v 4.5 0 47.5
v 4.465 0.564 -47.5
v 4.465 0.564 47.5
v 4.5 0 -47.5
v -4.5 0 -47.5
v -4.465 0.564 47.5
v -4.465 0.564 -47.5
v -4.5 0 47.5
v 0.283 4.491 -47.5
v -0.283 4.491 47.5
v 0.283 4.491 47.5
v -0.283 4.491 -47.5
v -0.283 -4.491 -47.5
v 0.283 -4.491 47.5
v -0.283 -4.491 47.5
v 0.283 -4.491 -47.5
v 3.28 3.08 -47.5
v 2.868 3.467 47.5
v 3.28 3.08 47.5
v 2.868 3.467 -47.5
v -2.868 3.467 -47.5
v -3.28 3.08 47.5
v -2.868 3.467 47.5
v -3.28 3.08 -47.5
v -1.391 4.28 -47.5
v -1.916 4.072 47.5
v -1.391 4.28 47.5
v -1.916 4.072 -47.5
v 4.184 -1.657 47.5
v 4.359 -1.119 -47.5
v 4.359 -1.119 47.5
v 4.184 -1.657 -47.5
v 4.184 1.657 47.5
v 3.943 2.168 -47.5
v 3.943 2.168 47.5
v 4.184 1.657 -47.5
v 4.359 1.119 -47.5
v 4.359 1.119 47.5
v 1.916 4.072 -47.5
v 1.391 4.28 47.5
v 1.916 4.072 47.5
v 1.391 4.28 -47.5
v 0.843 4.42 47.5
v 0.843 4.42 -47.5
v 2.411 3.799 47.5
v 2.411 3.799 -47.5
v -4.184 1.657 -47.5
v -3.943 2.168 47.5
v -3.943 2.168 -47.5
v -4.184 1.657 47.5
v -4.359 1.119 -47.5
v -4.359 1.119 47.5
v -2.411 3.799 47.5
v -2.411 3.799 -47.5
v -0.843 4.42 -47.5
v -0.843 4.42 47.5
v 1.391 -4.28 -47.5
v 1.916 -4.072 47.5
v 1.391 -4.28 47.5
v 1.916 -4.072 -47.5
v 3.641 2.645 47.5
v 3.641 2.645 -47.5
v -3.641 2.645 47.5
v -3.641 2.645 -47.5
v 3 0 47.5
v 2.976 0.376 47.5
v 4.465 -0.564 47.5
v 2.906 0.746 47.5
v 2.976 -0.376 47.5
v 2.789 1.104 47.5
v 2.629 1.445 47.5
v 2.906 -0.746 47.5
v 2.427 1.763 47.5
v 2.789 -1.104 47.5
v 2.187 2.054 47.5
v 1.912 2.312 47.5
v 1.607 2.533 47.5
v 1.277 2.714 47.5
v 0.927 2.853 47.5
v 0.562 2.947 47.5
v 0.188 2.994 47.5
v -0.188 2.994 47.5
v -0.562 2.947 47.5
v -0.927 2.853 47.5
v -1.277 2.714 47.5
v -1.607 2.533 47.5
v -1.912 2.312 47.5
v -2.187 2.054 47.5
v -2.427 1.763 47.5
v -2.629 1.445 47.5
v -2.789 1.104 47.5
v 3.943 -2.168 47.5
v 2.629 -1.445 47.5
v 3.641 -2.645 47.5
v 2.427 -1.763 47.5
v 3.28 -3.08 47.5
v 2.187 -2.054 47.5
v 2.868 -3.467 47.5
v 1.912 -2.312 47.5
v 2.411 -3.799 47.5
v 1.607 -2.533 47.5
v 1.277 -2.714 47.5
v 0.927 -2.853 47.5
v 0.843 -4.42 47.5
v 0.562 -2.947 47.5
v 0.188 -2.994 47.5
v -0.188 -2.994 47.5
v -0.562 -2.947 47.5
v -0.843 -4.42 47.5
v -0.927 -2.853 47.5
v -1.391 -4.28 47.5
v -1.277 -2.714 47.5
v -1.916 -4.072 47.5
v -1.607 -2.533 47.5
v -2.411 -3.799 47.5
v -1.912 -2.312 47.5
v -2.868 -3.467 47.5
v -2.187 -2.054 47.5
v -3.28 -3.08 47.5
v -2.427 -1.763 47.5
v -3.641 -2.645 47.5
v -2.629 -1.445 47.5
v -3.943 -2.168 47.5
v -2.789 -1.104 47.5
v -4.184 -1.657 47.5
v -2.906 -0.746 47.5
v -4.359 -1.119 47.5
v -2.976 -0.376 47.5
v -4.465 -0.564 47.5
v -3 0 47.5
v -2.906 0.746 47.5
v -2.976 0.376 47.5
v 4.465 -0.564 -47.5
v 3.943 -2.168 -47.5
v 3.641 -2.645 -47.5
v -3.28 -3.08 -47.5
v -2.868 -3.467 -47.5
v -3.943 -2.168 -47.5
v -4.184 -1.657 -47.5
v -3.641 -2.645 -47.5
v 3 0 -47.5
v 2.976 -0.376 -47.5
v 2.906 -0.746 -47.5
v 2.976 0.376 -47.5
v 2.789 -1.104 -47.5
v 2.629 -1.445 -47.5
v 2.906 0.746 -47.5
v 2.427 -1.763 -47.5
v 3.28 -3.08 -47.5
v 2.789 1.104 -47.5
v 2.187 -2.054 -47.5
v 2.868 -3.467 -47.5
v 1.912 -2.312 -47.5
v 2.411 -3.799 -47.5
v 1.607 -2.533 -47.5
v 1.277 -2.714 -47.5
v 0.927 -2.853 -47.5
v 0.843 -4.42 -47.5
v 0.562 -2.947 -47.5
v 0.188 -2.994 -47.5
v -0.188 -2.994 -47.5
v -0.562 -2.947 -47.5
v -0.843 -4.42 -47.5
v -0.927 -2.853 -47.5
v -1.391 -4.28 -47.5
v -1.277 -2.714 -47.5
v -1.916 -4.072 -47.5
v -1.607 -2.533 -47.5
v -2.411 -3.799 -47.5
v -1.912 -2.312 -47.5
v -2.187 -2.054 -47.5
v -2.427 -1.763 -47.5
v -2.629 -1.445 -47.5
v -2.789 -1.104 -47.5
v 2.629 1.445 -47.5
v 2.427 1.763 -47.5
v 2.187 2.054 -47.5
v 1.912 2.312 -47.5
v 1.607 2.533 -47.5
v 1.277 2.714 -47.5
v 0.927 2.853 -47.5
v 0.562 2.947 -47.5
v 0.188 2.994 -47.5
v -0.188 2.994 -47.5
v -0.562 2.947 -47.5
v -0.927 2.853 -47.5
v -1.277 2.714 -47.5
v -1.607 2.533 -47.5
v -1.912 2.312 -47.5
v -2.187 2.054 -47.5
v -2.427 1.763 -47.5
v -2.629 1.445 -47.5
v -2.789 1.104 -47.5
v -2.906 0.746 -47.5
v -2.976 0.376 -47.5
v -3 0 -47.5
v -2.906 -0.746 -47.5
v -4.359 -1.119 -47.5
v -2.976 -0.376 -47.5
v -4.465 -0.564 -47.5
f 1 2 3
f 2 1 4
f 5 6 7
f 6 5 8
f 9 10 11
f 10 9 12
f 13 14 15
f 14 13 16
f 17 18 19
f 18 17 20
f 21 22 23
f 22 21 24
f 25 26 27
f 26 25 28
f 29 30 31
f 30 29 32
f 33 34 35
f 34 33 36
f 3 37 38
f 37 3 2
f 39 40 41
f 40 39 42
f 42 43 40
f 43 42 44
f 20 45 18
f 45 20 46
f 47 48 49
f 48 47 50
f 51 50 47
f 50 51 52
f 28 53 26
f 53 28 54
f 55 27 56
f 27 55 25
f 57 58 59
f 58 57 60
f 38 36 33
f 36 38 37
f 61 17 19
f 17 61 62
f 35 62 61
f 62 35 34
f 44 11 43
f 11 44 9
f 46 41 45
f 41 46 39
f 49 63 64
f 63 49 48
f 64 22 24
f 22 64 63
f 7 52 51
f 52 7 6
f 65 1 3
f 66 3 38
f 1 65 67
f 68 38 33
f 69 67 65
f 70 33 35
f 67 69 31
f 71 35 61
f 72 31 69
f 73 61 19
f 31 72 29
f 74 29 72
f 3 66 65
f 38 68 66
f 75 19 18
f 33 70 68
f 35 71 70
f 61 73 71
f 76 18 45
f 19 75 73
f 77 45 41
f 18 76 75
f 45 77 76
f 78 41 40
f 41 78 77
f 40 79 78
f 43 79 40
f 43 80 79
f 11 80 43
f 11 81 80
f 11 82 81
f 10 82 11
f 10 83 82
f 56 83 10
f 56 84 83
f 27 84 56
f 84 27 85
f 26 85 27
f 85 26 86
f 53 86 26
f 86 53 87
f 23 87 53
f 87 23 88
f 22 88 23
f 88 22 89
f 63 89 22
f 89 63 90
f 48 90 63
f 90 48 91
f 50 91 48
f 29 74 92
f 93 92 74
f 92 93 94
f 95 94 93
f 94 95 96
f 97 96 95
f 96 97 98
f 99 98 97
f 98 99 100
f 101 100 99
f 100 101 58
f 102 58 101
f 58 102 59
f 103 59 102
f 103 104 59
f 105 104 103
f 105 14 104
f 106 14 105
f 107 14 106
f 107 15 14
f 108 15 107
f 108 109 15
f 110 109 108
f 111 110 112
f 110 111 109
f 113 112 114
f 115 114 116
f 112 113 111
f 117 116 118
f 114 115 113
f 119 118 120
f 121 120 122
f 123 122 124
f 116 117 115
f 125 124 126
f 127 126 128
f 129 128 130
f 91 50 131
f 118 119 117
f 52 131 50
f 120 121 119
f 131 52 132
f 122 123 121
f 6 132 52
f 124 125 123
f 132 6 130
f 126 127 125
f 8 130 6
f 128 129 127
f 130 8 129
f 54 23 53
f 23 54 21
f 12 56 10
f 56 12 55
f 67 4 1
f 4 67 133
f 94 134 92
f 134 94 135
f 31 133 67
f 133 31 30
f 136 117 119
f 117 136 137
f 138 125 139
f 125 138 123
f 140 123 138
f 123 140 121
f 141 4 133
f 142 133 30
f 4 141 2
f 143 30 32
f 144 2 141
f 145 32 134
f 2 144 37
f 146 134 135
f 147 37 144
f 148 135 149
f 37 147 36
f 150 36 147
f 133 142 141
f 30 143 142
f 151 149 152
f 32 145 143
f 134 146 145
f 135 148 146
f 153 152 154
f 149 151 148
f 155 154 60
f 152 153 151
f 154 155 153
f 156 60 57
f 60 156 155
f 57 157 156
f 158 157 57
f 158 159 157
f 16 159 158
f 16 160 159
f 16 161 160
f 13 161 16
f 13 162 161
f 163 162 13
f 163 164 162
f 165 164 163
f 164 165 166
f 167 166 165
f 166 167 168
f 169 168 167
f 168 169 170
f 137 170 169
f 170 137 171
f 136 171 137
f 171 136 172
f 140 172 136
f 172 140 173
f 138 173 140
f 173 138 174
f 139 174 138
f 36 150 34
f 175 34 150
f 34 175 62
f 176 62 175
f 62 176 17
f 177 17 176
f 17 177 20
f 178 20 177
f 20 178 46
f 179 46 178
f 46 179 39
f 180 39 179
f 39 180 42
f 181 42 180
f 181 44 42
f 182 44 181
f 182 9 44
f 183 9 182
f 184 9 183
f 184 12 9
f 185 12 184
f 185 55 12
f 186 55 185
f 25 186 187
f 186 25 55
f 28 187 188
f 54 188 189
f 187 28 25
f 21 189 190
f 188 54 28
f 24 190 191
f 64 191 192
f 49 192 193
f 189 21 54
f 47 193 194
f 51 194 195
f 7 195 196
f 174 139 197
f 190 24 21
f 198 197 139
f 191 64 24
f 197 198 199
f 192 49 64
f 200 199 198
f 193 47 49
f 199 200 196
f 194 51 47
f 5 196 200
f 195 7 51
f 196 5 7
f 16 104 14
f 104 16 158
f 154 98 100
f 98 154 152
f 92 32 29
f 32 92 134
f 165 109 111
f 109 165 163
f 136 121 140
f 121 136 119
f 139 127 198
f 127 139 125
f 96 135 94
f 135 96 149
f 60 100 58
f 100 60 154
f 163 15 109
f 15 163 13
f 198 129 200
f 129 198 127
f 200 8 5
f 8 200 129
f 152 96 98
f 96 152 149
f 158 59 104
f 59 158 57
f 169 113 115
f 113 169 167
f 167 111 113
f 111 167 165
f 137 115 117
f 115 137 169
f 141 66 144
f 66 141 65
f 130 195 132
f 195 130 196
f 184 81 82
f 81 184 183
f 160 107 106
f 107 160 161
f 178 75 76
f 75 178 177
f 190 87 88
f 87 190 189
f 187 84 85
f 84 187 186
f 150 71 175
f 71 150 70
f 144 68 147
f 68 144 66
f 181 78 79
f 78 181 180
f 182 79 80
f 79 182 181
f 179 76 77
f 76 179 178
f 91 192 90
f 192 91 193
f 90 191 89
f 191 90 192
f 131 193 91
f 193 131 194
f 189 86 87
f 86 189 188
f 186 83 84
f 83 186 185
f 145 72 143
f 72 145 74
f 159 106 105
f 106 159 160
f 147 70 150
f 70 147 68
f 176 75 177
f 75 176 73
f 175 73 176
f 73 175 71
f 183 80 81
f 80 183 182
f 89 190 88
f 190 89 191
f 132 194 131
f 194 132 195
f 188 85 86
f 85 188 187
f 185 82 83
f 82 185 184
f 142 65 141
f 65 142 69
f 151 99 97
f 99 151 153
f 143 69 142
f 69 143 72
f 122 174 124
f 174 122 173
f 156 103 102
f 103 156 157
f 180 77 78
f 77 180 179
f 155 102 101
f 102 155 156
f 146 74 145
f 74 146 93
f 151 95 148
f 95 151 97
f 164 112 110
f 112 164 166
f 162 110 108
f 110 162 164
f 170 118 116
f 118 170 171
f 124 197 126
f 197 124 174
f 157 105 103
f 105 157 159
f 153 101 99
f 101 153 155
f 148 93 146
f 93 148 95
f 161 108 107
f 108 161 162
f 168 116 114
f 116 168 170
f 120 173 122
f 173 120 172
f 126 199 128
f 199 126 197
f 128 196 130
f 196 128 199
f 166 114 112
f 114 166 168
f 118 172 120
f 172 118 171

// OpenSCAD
$fn = 50;


difference() {
	union() {
		translate(v = [0, 0, -47.5000000000]) {
			cylinder(h = 95, r = 4.5000000000);
		}
	}
	union() {
		translate(v = [0, 0, -100.0000000000]) {
			cylinder(h = 200, r = 3.0000000000);
		}
	}
}
